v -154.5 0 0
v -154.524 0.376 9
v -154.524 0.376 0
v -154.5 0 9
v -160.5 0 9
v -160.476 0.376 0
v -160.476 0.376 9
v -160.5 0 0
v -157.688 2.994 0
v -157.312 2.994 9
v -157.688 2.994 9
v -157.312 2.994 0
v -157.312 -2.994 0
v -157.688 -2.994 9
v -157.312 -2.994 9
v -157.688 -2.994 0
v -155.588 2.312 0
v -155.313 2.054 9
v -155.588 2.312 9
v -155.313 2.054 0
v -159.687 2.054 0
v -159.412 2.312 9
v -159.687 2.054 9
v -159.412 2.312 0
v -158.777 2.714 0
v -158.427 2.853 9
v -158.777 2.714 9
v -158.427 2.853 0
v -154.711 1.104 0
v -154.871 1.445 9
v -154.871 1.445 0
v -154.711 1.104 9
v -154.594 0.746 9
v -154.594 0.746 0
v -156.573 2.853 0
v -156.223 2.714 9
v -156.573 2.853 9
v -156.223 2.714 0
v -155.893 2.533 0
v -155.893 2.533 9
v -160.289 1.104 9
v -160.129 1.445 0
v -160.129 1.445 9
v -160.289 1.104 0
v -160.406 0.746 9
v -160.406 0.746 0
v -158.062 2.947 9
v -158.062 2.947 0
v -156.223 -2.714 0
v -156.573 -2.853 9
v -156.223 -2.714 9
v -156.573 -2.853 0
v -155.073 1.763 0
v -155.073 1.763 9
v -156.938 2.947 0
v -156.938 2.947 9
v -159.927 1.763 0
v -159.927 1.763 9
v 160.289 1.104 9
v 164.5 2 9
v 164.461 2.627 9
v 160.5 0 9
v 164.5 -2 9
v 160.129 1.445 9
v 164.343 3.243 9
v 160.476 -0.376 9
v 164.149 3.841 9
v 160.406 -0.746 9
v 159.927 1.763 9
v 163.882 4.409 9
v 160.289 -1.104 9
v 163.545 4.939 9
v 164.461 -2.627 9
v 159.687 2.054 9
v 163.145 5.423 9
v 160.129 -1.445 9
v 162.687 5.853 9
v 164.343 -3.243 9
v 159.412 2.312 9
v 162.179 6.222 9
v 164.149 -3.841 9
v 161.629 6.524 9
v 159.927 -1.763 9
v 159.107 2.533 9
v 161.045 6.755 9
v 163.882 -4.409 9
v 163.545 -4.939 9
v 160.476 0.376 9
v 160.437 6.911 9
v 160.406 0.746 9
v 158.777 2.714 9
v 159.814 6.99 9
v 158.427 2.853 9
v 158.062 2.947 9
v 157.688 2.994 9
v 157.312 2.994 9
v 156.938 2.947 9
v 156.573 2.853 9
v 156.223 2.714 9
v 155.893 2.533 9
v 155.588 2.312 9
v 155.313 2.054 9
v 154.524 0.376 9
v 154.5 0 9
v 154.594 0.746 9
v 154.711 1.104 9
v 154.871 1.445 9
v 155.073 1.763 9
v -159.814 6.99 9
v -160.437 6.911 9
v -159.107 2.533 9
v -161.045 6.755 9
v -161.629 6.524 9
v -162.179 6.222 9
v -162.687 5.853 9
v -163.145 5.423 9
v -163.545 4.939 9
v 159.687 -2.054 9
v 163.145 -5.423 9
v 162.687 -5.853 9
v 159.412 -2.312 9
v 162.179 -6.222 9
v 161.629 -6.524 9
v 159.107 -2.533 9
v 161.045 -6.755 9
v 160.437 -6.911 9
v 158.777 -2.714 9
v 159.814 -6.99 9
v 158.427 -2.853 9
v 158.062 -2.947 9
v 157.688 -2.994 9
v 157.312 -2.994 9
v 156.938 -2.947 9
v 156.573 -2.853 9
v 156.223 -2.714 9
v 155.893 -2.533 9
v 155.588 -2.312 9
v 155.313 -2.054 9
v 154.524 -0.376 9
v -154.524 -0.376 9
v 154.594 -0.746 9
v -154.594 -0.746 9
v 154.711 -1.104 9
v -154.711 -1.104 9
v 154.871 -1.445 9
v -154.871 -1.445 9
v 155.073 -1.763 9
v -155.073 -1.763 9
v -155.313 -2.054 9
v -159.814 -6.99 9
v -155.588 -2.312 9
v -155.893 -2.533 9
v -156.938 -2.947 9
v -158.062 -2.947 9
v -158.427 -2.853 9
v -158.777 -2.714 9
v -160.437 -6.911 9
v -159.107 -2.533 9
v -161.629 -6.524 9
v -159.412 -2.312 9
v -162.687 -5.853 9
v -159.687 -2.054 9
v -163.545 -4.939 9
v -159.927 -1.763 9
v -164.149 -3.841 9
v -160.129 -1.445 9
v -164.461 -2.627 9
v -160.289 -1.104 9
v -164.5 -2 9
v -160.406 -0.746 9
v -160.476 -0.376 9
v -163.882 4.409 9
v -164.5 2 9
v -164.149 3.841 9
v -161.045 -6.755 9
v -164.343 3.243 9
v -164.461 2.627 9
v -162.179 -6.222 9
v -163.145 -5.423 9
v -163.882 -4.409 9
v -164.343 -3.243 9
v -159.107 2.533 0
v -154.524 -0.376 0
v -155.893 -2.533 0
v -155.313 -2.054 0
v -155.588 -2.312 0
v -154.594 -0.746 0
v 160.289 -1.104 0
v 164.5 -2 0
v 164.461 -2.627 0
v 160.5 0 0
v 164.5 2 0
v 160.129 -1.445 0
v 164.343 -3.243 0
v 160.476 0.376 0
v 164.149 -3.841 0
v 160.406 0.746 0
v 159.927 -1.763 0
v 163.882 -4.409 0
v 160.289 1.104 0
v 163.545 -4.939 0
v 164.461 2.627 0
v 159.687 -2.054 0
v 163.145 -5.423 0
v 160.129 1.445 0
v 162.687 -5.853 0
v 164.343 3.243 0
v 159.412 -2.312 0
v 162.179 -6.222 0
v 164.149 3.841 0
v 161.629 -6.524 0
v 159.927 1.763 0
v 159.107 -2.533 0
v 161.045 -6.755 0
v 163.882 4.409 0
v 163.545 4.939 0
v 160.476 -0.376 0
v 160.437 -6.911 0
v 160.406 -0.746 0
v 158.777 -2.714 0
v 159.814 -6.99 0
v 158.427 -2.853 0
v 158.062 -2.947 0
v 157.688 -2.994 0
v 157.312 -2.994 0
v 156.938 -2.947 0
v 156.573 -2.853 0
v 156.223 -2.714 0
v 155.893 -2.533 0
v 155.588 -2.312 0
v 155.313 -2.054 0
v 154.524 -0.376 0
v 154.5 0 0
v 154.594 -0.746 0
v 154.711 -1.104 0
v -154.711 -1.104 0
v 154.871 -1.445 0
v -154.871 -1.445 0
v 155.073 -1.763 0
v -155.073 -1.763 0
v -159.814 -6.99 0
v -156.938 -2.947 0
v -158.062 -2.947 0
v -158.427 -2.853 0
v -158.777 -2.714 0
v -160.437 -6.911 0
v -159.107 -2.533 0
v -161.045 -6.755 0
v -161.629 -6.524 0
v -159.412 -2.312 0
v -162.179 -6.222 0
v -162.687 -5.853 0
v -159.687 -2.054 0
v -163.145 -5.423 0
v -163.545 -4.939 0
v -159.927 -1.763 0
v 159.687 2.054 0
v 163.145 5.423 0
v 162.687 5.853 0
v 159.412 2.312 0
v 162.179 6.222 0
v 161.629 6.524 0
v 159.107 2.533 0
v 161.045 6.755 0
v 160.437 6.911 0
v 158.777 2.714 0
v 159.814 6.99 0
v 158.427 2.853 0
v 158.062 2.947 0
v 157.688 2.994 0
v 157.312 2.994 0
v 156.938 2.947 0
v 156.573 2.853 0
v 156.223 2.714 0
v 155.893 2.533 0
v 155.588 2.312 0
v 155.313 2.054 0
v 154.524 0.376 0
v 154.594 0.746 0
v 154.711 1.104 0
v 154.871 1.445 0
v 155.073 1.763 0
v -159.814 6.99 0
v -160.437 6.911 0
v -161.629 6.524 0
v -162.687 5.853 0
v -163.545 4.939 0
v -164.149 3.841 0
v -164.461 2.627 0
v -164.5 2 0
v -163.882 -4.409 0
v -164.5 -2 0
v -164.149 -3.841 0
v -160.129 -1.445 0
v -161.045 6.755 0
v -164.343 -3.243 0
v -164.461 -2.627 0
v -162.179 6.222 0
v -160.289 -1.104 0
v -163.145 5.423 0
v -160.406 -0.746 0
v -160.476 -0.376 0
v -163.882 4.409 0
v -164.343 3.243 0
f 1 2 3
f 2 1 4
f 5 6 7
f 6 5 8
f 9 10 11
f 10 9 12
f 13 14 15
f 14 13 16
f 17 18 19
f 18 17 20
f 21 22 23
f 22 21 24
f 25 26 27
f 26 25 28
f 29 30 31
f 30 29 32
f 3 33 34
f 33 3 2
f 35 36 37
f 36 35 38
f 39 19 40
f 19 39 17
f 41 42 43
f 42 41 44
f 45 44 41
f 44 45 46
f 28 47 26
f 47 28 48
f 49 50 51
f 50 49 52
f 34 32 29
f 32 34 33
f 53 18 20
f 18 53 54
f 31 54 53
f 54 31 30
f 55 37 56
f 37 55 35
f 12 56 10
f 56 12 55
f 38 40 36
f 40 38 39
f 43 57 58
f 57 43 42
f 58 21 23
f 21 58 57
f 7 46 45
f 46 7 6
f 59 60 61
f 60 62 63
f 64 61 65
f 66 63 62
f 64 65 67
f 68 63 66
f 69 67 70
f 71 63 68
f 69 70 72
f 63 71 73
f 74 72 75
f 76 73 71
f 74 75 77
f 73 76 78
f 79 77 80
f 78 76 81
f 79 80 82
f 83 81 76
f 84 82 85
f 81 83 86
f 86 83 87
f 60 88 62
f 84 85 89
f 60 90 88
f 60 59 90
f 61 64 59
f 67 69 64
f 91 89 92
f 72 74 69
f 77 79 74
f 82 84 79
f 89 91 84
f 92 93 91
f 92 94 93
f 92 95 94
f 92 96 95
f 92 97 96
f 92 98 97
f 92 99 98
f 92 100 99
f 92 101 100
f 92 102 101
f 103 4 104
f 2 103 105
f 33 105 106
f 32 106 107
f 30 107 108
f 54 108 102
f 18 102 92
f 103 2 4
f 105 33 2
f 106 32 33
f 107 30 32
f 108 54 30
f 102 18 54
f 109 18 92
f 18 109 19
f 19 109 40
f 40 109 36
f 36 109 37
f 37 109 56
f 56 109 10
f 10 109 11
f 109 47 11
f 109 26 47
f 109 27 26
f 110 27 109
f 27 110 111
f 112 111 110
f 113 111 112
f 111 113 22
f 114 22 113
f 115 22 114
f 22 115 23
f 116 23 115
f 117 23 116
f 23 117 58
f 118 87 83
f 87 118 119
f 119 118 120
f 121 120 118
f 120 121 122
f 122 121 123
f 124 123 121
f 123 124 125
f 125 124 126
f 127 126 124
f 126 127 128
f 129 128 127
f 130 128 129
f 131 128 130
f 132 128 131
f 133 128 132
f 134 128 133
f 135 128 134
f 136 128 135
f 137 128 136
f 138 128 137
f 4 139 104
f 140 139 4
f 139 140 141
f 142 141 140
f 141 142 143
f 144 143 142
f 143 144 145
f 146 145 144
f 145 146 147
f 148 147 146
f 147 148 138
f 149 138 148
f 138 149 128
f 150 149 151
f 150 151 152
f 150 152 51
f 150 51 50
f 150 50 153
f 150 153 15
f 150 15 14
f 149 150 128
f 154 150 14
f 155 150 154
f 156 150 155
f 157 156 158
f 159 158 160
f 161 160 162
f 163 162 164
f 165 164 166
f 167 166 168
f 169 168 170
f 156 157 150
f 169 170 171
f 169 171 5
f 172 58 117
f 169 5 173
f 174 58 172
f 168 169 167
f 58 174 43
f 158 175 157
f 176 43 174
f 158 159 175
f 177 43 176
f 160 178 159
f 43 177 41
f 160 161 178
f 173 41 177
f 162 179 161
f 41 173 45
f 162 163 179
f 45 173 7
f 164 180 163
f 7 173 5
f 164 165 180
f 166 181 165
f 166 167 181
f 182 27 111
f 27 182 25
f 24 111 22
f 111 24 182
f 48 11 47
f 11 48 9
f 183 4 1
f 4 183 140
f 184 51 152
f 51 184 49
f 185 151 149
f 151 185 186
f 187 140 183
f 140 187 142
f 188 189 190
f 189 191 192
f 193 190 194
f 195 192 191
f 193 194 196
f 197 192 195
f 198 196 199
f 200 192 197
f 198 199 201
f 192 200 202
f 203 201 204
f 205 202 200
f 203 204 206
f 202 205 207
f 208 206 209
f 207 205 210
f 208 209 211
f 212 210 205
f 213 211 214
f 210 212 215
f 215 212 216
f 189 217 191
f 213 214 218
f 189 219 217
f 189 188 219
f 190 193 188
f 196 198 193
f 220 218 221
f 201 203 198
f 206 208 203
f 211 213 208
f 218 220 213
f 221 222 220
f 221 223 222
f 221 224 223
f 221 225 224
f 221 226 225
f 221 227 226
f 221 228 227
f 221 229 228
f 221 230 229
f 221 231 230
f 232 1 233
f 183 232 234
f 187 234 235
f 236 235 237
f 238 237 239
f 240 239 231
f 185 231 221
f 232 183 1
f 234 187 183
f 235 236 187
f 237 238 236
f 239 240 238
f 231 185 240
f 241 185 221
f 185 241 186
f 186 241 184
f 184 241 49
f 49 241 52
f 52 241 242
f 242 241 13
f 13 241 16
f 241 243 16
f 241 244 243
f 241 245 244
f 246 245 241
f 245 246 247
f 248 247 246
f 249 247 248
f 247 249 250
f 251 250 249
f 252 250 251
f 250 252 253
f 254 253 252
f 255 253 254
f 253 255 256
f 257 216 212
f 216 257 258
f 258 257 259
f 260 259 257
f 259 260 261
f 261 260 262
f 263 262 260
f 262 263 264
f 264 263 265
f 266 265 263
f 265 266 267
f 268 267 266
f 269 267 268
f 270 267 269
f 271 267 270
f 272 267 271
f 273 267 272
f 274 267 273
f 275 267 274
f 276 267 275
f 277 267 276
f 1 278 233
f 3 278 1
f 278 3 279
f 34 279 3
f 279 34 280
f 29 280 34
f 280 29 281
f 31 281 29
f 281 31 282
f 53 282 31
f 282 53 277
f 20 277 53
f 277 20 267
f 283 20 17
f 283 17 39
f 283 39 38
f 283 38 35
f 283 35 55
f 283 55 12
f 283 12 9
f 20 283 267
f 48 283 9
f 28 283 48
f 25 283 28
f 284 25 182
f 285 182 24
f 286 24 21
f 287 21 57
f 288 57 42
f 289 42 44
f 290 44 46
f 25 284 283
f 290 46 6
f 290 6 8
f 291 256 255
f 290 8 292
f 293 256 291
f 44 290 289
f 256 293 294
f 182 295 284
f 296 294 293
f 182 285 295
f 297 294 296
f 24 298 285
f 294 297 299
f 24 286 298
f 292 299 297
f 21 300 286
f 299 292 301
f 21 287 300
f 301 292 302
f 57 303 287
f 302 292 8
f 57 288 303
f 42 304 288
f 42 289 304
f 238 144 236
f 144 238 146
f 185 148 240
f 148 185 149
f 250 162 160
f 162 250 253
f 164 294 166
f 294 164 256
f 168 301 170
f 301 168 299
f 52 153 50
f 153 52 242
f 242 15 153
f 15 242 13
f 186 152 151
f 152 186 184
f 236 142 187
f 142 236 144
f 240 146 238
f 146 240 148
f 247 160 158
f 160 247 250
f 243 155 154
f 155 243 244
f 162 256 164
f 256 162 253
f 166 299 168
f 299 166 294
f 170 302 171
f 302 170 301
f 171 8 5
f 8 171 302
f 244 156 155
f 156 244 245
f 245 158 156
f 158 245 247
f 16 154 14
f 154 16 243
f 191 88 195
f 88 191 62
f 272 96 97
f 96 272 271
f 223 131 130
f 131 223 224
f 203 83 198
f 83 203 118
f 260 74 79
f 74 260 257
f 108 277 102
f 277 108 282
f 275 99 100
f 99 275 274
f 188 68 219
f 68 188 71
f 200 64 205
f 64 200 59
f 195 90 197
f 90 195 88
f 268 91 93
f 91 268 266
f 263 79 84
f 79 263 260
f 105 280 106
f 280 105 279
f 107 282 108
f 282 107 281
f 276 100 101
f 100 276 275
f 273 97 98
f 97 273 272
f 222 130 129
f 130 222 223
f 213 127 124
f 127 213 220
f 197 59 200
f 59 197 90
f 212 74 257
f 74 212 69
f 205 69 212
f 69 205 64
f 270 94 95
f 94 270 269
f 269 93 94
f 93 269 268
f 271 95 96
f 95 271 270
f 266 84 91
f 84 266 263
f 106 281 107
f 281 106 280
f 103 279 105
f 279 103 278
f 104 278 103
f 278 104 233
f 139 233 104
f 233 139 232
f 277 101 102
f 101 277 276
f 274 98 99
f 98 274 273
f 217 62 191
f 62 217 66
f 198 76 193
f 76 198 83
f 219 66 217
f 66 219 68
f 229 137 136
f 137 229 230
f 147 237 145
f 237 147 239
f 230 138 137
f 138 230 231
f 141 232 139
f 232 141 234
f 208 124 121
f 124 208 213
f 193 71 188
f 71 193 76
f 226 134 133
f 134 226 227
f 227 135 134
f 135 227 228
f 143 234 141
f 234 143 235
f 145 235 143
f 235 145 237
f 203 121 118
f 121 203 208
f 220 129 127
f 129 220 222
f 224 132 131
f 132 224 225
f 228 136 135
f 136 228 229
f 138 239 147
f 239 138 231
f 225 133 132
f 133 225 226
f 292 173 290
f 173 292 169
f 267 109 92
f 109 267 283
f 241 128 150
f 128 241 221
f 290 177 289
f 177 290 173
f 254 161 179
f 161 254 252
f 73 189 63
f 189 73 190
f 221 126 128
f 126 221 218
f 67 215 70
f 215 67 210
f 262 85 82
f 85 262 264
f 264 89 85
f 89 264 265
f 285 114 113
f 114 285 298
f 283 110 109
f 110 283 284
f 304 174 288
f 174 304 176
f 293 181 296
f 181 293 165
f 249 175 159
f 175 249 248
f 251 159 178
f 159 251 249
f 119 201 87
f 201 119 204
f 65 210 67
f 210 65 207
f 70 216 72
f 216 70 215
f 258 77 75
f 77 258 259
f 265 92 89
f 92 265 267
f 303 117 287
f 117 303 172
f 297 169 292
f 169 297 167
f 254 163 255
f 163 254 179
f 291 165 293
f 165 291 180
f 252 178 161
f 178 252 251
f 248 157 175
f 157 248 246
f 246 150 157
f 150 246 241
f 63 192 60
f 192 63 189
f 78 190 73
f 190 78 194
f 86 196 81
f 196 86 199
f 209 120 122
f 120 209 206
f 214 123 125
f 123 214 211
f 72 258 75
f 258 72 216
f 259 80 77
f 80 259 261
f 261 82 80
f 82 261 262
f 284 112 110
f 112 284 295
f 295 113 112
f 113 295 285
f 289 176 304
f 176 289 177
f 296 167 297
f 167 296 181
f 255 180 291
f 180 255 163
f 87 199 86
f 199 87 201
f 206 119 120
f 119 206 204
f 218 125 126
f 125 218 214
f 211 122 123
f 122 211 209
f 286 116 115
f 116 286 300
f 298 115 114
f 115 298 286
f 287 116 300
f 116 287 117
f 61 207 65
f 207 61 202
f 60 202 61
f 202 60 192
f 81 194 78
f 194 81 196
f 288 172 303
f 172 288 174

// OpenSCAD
$fn = 50;


difference() {
	union() {
		hull() {
			translate(v = [-159.5000000000, 2.0000000000, 0]) {
				cylinder(h = 9, r = 5);
			}
			translate(v = [159.5000000000, 2.0000000000, 0]) {
				cylinder(h = 9, r = 5);
			}
			translate(v = [-159.5000000000, -2.0000000000, 0]) {
				cylinder(h = 9, r = 5);
			}
			translate(v = [159.5000000000, -2.0000000000, 0]) {
				cylinder(h = 9, r = 5);
			}
		}
	}
	union() {
		translate(v = [-157.5000000000, 0.0000000000, 0]) {
			cylinder(h = 9, r = 3.0000000000);
		}
		translate(v = [157.5000000000, 0.0000000000, 0]) {
			cylinder(h = 9, r = 3.0000000000);
		}
		translate(v = [-157.5000000000, 0.0000000000, 0]) {
			cylinder(h = 9, r = 1.5000000000);
		}
		translate(v = [157.5000000000, 0.0000000000, 0]) {
			cylinder(h = 9, r = 1.5000000000);
		}
		translate(v = [-157.5000000000, 0.0000000000, 0]) {
			cylinder(h = 9, r = 1.5000000000);
		}
		translate(v = [157.5000000000, 0.0000000000, 0]) {
			cylinder(h = 9, r = 1.5000000000);
		}
		translate(v = [-157.5000000000, 0.0000000000, 0]) {
			cylinder(h = 9, r = 1.5000000000);
		}
		translate(v = [157.5000000000, 0.0000000000, 0]) {
			cylinder(h = 9, r = 1.5000000000);
		}
	}
}
